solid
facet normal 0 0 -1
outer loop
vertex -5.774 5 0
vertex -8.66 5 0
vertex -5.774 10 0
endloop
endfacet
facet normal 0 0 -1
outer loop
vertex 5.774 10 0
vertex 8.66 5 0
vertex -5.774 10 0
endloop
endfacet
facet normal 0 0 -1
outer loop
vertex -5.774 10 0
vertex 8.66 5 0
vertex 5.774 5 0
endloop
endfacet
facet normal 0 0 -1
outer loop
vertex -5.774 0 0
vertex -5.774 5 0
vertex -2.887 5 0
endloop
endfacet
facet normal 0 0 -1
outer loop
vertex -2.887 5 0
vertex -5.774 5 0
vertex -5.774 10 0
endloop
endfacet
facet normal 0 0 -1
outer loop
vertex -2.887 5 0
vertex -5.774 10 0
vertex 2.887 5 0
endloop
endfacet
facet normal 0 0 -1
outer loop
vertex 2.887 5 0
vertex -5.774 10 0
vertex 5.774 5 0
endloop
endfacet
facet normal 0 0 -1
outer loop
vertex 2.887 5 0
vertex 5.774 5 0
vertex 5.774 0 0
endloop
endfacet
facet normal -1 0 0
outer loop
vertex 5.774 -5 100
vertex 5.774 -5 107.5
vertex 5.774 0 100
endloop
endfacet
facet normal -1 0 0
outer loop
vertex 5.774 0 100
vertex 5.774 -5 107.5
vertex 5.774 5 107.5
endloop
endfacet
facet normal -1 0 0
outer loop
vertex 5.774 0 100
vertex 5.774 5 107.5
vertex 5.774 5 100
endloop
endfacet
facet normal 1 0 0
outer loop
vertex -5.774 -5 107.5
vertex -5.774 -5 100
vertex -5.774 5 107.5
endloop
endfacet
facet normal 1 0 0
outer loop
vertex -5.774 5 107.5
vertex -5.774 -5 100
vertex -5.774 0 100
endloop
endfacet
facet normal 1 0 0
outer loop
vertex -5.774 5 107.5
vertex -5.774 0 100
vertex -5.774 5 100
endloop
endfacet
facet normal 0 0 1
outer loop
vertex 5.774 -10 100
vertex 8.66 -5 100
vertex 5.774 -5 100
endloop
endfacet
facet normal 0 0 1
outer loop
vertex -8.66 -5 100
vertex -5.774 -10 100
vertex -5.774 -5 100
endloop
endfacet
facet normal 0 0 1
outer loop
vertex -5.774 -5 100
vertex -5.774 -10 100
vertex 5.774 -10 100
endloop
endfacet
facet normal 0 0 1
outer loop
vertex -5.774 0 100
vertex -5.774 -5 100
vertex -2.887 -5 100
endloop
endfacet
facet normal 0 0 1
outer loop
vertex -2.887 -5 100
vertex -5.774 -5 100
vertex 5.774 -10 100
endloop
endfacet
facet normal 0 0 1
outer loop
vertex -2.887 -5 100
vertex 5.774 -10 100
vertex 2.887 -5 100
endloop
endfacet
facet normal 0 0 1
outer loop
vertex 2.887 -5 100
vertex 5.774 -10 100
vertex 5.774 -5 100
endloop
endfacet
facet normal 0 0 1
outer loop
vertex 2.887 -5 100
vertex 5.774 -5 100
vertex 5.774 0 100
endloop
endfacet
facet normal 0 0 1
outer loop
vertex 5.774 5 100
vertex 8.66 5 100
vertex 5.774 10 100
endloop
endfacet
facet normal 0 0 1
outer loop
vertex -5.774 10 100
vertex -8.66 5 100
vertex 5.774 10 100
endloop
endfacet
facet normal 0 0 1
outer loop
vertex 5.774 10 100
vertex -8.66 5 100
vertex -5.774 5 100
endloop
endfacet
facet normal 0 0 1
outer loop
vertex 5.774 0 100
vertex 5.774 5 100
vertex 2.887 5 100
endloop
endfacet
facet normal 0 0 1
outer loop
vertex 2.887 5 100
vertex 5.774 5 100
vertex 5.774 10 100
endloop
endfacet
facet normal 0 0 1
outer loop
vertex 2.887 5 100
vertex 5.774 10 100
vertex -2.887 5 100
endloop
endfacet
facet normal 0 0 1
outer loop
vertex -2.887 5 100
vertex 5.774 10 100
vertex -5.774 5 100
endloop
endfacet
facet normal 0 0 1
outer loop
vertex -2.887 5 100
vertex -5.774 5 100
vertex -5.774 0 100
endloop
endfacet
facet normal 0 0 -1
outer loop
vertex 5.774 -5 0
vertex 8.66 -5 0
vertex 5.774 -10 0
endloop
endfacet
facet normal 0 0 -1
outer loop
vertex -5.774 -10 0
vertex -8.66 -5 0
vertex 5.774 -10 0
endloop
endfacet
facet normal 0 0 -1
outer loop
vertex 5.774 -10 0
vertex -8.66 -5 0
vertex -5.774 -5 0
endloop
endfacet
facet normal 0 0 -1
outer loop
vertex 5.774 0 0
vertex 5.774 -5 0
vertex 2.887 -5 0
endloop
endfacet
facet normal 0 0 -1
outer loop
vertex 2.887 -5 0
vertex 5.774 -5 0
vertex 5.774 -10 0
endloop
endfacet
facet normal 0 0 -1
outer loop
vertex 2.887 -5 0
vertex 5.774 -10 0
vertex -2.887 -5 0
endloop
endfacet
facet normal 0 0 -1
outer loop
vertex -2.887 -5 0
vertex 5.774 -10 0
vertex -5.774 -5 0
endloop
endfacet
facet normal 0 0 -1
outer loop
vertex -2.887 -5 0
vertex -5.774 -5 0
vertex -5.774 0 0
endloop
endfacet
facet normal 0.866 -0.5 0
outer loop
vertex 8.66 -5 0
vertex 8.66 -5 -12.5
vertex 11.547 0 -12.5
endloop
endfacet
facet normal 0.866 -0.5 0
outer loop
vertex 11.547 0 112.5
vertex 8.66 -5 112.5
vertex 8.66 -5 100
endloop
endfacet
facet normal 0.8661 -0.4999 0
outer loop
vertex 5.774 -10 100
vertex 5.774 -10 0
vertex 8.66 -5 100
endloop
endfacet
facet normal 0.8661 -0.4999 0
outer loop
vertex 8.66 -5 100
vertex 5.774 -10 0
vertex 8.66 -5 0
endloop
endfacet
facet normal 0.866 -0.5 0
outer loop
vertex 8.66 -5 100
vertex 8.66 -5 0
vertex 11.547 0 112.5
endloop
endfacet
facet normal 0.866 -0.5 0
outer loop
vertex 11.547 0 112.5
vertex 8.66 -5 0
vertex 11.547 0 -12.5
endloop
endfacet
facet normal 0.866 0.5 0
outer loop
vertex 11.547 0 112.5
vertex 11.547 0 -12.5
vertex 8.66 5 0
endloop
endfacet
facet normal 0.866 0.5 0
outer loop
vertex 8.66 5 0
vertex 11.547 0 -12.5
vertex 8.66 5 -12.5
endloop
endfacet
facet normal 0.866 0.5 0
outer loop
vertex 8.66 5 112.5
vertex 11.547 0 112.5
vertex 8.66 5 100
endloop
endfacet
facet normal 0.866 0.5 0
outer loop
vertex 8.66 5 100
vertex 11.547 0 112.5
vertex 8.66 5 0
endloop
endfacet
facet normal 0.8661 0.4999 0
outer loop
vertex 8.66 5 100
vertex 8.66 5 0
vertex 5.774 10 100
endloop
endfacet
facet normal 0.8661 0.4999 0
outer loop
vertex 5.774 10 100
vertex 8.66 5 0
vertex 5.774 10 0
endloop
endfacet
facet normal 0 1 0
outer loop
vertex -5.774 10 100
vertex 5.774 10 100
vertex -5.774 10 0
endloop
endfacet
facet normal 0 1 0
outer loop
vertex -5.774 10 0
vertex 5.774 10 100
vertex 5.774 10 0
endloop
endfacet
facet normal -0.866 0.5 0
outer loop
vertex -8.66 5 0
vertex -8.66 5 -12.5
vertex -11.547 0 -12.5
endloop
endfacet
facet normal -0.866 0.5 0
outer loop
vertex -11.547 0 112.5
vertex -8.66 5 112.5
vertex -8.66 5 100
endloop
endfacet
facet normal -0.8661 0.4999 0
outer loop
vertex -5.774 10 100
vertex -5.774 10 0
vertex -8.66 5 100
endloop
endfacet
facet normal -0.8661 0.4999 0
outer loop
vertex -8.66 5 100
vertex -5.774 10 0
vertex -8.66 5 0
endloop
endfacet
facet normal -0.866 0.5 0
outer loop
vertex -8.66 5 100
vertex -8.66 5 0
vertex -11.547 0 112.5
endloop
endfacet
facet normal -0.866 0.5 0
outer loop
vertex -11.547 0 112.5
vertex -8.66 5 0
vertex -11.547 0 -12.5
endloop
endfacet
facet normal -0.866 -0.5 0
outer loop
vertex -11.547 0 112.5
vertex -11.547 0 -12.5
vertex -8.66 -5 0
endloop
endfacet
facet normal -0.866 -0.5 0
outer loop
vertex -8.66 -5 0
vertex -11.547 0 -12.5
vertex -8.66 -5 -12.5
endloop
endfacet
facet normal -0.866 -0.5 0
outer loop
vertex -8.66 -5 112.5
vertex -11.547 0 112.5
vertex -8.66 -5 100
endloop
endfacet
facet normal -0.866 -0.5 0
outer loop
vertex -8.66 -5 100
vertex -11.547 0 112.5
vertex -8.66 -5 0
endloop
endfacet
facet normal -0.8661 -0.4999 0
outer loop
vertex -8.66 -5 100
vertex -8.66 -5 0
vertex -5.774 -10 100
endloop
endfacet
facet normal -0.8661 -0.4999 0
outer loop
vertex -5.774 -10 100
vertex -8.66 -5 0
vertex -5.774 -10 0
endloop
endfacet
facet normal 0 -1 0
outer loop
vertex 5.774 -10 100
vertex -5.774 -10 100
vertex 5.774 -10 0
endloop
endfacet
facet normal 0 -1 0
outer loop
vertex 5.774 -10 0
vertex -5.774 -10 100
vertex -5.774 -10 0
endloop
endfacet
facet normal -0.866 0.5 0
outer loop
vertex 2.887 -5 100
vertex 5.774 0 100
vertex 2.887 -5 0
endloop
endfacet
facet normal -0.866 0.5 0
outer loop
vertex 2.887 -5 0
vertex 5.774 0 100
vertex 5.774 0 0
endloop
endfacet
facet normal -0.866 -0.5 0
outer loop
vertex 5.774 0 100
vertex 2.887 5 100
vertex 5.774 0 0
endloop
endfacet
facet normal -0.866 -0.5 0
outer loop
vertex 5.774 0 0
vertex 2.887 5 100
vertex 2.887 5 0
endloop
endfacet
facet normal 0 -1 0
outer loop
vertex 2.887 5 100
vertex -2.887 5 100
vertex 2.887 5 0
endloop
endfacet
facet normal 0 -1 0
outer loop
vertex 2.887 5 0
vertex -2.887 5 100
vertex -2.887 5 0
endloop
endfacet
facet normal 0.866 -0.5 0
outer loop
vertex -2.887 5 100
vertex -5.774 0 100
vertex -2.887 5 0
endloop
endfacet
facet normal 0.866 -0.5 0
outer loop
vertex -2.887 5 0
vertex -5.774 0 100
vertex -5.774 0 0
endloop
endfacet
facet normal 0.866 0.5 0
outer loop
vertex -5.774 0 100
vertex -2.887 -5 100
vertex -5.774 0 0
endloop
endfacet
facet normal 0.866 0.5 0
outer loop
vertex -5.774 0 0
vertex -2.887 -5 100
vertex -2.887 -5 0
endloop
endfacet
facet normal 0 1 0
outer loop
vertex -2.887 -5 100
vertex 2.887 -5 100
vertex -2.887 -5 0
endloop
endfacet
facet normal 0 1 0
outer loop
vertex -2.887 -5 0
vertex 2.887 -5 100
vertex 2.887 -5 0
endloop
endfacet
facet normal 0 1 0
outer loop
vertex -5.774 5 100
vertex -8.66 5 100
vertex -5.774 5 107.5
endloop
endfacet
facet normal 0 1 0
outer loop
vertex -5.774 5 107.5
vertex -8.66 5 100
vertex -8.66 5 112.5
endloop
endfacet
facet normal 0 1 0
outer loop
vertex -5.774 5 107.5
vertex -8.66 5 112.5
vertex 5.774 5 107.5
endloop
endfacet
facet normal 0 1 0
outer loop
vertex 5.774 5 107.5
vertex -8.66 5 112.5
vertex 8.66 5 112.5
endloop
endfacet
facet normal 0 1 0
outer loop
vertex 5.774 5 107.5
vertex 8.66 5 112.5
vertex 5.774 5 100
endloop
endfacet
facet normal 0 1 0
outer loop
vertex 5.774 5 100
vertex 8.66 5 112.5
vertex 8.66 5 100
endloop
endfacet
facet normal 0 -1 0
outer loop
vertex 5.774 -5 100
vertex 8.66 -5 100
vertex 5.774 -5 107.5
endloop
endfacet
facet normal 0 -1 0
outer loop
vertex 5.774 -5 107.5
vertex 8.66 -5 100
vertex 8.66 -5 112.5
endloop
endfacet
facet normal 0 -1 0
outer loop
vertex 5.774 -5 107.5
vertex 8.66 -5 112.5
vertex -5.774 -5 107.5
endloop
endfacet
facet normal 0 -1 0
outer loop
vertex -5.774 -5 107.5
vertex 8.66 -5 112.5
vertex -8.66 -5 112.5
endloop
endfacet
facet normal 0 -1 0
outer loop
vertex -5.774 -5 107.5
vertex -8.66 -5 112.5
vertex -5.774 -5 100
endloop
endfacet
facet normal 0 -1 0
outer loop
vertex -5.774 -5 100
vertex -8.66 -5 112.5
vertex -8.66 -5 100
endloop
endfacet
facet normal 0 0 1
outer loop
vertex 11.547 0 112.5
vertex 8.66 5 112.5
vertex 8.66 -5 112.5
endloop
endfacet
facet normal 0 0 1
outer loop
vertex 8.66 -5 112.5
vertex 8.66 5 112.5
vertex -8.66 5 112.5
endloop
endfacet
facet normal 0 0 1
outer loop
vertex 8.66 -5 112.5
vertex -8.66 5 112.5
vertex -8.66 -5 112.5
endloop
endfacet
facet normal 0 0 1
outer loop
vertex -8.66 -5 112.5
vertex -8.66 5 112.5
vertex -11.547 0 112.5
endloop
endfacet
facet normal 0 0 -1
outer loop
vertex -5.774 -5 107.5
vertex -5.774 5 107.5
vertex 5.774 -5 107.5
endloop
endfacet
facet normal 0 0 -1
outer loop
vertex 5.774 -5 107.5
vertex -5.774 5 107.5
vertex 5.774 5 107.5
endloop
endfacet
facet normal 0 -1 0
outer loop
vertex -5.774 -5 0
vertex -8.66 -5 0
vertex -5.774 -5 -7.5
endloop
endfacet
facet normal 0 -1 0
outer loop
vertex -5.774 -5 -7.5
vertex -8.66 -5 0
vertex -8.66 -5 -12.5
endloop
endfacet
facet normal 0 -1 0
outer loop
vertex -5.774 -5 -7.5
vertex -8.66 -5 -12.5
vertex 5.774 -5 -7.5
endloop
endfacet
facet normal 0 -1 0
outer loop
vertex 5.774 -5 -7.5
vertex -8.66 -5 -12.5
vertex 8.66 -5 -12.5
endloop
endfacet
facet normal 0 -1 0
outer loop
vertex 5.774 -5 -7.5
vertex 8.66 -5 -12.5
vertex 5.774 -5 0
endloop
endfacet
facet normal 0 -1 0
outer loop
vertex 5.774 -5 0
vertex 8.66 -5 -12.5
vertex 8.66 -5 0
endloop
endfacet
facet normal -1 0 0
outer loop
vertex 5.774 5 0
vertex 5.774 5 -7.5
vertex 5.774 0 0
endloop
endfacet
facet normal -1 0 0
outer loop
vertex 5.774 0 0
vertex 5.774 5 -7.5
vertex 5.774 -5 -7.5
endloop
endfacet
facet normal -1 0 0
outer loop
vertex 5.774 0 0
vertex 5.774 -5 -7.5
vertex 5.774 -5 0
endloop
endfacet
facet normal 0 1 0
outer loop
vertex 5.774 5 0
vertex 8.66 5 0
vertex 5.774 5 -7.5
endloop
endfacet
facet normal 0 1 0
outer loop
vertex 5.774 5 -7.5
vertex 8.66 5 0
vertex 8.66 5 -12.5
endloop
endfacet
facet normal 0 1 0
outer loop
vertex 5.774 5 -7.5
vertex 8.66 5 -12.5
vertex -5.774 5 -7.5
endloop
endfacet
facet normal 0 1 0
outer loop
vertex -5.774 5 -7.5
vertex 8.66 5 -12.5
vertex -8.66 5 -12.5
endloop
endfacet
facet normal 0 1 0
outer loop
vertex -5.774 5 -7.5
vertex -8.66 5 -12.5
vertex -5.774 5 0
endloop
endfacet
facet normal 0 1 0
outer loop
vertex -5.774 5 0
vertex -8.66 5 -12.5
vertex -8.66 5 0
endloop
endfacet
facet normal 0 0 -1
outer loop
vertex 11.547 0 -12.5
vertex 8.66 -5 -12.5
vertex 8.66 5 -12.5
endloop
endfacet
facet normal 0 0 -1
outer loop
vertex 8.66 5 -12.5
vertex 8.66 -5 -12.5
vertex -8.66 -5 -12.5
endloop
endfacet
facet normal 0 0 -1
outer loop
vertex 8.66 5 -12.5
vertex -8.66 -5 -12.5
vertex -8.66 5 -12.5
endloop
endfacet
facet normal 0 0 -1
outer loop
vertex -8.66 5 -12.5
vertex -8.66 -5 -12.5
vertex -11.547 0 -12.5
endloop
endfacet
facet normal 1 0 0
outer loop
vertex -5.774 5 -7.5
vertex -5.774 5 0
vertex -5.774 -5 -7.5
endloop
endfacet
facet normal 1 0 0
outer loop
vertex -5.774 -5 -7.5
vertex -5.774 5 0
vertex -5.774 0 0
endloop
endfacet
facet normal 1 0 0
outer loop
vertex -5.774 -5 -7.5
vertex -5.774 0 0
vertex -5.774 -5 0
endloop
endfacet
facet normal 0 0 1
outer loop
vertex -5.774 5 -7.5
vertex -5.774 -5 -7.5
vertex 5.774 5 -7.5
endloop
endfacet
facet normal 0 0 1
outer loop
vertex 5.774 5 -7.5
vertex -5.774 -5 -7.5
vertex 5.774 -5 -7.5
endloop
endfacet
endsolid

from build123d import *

# Parameters (mm, degrees)
BOSS_EXTRUDE1_DEPTH = 100
BOSS_EXTRUDE2_DEPTH = 12.5
BOSS_EXTRUDE3_REACH = 116.264
SKETCH7_W           = 5
SKETCH7_H           = 10


with BuildPart() as part:
    # Sketch3 → Boss-Extrude1 (new body)
    with BuildSketch(Plane.XY):
        Polygon((11.547005384, 0), (5.773502692, 10), (-5.773502692, 10), (-11.547005384, 0), (-5.773502692, -10), (5.773502692, -10), align=None)
        Polygon((5.773502692, 0), (2.886751346, 5), (-2.886751346, 5), (-5.773502692, 0), (-2.886751346, -5), (2.886751346, -5), align=None, mode=Mode.SUBTRACT)
    extrude(amount=BOSS_EXTRUDE1_DEPTH)

    # Sketch5 → Boss-Extrude2 (add)
    with BuildSketch(Plane.XY.offset(100)):
        Polygon((5.773502692, 5), (8.660254038, 5), (11.547005384, 0), (8.660254038, -5), (5.773502692, -5), align=None)
        Polygon((-8.660254038, 5), (-11.547005384, 0), (-8.660254038, -5), (-5.773502692, -5), (-5.773502692, 5), align=None)
    boss_extrude2 = extrude(amount=BOSS_EXTRUDE2_DEPTH)

    # Sketch7 → Boss-Extrude3 (add, up to next)
    with BuildSketch(Plane(origin=(-5.773502692, 0, 0), x_dir=(0, 0, -1), z_dir=(1, 0, 0)), mode=Mode.PRIVATE) as boss_extrude3_sk1:
        with Locations((-110, 0)):
            Rectangle(SKETCH7_W, SKETCH7_H)
    boss_extrude3_tool1 = extrude(boss_extrude3_sk1.sketch, amount=BOSS_EXTRUDE3_REACH, mode=Mode.PRIVATE) - part.part
    boss_extrude3 = boss_extrude3_tool1.solids().sort_by_distance((-5.773503, 0, 110))[0]
    add(boss_extrude3)

    # Mirror1: Boss-Extrude2, Boss-Extrude3 across plane
    add(boss_extrude2.mirror(Plane.XY.offset(50)))
    add(boss_extrude3.mirror(Plane.XY.offset(50)))


solid = part.part
